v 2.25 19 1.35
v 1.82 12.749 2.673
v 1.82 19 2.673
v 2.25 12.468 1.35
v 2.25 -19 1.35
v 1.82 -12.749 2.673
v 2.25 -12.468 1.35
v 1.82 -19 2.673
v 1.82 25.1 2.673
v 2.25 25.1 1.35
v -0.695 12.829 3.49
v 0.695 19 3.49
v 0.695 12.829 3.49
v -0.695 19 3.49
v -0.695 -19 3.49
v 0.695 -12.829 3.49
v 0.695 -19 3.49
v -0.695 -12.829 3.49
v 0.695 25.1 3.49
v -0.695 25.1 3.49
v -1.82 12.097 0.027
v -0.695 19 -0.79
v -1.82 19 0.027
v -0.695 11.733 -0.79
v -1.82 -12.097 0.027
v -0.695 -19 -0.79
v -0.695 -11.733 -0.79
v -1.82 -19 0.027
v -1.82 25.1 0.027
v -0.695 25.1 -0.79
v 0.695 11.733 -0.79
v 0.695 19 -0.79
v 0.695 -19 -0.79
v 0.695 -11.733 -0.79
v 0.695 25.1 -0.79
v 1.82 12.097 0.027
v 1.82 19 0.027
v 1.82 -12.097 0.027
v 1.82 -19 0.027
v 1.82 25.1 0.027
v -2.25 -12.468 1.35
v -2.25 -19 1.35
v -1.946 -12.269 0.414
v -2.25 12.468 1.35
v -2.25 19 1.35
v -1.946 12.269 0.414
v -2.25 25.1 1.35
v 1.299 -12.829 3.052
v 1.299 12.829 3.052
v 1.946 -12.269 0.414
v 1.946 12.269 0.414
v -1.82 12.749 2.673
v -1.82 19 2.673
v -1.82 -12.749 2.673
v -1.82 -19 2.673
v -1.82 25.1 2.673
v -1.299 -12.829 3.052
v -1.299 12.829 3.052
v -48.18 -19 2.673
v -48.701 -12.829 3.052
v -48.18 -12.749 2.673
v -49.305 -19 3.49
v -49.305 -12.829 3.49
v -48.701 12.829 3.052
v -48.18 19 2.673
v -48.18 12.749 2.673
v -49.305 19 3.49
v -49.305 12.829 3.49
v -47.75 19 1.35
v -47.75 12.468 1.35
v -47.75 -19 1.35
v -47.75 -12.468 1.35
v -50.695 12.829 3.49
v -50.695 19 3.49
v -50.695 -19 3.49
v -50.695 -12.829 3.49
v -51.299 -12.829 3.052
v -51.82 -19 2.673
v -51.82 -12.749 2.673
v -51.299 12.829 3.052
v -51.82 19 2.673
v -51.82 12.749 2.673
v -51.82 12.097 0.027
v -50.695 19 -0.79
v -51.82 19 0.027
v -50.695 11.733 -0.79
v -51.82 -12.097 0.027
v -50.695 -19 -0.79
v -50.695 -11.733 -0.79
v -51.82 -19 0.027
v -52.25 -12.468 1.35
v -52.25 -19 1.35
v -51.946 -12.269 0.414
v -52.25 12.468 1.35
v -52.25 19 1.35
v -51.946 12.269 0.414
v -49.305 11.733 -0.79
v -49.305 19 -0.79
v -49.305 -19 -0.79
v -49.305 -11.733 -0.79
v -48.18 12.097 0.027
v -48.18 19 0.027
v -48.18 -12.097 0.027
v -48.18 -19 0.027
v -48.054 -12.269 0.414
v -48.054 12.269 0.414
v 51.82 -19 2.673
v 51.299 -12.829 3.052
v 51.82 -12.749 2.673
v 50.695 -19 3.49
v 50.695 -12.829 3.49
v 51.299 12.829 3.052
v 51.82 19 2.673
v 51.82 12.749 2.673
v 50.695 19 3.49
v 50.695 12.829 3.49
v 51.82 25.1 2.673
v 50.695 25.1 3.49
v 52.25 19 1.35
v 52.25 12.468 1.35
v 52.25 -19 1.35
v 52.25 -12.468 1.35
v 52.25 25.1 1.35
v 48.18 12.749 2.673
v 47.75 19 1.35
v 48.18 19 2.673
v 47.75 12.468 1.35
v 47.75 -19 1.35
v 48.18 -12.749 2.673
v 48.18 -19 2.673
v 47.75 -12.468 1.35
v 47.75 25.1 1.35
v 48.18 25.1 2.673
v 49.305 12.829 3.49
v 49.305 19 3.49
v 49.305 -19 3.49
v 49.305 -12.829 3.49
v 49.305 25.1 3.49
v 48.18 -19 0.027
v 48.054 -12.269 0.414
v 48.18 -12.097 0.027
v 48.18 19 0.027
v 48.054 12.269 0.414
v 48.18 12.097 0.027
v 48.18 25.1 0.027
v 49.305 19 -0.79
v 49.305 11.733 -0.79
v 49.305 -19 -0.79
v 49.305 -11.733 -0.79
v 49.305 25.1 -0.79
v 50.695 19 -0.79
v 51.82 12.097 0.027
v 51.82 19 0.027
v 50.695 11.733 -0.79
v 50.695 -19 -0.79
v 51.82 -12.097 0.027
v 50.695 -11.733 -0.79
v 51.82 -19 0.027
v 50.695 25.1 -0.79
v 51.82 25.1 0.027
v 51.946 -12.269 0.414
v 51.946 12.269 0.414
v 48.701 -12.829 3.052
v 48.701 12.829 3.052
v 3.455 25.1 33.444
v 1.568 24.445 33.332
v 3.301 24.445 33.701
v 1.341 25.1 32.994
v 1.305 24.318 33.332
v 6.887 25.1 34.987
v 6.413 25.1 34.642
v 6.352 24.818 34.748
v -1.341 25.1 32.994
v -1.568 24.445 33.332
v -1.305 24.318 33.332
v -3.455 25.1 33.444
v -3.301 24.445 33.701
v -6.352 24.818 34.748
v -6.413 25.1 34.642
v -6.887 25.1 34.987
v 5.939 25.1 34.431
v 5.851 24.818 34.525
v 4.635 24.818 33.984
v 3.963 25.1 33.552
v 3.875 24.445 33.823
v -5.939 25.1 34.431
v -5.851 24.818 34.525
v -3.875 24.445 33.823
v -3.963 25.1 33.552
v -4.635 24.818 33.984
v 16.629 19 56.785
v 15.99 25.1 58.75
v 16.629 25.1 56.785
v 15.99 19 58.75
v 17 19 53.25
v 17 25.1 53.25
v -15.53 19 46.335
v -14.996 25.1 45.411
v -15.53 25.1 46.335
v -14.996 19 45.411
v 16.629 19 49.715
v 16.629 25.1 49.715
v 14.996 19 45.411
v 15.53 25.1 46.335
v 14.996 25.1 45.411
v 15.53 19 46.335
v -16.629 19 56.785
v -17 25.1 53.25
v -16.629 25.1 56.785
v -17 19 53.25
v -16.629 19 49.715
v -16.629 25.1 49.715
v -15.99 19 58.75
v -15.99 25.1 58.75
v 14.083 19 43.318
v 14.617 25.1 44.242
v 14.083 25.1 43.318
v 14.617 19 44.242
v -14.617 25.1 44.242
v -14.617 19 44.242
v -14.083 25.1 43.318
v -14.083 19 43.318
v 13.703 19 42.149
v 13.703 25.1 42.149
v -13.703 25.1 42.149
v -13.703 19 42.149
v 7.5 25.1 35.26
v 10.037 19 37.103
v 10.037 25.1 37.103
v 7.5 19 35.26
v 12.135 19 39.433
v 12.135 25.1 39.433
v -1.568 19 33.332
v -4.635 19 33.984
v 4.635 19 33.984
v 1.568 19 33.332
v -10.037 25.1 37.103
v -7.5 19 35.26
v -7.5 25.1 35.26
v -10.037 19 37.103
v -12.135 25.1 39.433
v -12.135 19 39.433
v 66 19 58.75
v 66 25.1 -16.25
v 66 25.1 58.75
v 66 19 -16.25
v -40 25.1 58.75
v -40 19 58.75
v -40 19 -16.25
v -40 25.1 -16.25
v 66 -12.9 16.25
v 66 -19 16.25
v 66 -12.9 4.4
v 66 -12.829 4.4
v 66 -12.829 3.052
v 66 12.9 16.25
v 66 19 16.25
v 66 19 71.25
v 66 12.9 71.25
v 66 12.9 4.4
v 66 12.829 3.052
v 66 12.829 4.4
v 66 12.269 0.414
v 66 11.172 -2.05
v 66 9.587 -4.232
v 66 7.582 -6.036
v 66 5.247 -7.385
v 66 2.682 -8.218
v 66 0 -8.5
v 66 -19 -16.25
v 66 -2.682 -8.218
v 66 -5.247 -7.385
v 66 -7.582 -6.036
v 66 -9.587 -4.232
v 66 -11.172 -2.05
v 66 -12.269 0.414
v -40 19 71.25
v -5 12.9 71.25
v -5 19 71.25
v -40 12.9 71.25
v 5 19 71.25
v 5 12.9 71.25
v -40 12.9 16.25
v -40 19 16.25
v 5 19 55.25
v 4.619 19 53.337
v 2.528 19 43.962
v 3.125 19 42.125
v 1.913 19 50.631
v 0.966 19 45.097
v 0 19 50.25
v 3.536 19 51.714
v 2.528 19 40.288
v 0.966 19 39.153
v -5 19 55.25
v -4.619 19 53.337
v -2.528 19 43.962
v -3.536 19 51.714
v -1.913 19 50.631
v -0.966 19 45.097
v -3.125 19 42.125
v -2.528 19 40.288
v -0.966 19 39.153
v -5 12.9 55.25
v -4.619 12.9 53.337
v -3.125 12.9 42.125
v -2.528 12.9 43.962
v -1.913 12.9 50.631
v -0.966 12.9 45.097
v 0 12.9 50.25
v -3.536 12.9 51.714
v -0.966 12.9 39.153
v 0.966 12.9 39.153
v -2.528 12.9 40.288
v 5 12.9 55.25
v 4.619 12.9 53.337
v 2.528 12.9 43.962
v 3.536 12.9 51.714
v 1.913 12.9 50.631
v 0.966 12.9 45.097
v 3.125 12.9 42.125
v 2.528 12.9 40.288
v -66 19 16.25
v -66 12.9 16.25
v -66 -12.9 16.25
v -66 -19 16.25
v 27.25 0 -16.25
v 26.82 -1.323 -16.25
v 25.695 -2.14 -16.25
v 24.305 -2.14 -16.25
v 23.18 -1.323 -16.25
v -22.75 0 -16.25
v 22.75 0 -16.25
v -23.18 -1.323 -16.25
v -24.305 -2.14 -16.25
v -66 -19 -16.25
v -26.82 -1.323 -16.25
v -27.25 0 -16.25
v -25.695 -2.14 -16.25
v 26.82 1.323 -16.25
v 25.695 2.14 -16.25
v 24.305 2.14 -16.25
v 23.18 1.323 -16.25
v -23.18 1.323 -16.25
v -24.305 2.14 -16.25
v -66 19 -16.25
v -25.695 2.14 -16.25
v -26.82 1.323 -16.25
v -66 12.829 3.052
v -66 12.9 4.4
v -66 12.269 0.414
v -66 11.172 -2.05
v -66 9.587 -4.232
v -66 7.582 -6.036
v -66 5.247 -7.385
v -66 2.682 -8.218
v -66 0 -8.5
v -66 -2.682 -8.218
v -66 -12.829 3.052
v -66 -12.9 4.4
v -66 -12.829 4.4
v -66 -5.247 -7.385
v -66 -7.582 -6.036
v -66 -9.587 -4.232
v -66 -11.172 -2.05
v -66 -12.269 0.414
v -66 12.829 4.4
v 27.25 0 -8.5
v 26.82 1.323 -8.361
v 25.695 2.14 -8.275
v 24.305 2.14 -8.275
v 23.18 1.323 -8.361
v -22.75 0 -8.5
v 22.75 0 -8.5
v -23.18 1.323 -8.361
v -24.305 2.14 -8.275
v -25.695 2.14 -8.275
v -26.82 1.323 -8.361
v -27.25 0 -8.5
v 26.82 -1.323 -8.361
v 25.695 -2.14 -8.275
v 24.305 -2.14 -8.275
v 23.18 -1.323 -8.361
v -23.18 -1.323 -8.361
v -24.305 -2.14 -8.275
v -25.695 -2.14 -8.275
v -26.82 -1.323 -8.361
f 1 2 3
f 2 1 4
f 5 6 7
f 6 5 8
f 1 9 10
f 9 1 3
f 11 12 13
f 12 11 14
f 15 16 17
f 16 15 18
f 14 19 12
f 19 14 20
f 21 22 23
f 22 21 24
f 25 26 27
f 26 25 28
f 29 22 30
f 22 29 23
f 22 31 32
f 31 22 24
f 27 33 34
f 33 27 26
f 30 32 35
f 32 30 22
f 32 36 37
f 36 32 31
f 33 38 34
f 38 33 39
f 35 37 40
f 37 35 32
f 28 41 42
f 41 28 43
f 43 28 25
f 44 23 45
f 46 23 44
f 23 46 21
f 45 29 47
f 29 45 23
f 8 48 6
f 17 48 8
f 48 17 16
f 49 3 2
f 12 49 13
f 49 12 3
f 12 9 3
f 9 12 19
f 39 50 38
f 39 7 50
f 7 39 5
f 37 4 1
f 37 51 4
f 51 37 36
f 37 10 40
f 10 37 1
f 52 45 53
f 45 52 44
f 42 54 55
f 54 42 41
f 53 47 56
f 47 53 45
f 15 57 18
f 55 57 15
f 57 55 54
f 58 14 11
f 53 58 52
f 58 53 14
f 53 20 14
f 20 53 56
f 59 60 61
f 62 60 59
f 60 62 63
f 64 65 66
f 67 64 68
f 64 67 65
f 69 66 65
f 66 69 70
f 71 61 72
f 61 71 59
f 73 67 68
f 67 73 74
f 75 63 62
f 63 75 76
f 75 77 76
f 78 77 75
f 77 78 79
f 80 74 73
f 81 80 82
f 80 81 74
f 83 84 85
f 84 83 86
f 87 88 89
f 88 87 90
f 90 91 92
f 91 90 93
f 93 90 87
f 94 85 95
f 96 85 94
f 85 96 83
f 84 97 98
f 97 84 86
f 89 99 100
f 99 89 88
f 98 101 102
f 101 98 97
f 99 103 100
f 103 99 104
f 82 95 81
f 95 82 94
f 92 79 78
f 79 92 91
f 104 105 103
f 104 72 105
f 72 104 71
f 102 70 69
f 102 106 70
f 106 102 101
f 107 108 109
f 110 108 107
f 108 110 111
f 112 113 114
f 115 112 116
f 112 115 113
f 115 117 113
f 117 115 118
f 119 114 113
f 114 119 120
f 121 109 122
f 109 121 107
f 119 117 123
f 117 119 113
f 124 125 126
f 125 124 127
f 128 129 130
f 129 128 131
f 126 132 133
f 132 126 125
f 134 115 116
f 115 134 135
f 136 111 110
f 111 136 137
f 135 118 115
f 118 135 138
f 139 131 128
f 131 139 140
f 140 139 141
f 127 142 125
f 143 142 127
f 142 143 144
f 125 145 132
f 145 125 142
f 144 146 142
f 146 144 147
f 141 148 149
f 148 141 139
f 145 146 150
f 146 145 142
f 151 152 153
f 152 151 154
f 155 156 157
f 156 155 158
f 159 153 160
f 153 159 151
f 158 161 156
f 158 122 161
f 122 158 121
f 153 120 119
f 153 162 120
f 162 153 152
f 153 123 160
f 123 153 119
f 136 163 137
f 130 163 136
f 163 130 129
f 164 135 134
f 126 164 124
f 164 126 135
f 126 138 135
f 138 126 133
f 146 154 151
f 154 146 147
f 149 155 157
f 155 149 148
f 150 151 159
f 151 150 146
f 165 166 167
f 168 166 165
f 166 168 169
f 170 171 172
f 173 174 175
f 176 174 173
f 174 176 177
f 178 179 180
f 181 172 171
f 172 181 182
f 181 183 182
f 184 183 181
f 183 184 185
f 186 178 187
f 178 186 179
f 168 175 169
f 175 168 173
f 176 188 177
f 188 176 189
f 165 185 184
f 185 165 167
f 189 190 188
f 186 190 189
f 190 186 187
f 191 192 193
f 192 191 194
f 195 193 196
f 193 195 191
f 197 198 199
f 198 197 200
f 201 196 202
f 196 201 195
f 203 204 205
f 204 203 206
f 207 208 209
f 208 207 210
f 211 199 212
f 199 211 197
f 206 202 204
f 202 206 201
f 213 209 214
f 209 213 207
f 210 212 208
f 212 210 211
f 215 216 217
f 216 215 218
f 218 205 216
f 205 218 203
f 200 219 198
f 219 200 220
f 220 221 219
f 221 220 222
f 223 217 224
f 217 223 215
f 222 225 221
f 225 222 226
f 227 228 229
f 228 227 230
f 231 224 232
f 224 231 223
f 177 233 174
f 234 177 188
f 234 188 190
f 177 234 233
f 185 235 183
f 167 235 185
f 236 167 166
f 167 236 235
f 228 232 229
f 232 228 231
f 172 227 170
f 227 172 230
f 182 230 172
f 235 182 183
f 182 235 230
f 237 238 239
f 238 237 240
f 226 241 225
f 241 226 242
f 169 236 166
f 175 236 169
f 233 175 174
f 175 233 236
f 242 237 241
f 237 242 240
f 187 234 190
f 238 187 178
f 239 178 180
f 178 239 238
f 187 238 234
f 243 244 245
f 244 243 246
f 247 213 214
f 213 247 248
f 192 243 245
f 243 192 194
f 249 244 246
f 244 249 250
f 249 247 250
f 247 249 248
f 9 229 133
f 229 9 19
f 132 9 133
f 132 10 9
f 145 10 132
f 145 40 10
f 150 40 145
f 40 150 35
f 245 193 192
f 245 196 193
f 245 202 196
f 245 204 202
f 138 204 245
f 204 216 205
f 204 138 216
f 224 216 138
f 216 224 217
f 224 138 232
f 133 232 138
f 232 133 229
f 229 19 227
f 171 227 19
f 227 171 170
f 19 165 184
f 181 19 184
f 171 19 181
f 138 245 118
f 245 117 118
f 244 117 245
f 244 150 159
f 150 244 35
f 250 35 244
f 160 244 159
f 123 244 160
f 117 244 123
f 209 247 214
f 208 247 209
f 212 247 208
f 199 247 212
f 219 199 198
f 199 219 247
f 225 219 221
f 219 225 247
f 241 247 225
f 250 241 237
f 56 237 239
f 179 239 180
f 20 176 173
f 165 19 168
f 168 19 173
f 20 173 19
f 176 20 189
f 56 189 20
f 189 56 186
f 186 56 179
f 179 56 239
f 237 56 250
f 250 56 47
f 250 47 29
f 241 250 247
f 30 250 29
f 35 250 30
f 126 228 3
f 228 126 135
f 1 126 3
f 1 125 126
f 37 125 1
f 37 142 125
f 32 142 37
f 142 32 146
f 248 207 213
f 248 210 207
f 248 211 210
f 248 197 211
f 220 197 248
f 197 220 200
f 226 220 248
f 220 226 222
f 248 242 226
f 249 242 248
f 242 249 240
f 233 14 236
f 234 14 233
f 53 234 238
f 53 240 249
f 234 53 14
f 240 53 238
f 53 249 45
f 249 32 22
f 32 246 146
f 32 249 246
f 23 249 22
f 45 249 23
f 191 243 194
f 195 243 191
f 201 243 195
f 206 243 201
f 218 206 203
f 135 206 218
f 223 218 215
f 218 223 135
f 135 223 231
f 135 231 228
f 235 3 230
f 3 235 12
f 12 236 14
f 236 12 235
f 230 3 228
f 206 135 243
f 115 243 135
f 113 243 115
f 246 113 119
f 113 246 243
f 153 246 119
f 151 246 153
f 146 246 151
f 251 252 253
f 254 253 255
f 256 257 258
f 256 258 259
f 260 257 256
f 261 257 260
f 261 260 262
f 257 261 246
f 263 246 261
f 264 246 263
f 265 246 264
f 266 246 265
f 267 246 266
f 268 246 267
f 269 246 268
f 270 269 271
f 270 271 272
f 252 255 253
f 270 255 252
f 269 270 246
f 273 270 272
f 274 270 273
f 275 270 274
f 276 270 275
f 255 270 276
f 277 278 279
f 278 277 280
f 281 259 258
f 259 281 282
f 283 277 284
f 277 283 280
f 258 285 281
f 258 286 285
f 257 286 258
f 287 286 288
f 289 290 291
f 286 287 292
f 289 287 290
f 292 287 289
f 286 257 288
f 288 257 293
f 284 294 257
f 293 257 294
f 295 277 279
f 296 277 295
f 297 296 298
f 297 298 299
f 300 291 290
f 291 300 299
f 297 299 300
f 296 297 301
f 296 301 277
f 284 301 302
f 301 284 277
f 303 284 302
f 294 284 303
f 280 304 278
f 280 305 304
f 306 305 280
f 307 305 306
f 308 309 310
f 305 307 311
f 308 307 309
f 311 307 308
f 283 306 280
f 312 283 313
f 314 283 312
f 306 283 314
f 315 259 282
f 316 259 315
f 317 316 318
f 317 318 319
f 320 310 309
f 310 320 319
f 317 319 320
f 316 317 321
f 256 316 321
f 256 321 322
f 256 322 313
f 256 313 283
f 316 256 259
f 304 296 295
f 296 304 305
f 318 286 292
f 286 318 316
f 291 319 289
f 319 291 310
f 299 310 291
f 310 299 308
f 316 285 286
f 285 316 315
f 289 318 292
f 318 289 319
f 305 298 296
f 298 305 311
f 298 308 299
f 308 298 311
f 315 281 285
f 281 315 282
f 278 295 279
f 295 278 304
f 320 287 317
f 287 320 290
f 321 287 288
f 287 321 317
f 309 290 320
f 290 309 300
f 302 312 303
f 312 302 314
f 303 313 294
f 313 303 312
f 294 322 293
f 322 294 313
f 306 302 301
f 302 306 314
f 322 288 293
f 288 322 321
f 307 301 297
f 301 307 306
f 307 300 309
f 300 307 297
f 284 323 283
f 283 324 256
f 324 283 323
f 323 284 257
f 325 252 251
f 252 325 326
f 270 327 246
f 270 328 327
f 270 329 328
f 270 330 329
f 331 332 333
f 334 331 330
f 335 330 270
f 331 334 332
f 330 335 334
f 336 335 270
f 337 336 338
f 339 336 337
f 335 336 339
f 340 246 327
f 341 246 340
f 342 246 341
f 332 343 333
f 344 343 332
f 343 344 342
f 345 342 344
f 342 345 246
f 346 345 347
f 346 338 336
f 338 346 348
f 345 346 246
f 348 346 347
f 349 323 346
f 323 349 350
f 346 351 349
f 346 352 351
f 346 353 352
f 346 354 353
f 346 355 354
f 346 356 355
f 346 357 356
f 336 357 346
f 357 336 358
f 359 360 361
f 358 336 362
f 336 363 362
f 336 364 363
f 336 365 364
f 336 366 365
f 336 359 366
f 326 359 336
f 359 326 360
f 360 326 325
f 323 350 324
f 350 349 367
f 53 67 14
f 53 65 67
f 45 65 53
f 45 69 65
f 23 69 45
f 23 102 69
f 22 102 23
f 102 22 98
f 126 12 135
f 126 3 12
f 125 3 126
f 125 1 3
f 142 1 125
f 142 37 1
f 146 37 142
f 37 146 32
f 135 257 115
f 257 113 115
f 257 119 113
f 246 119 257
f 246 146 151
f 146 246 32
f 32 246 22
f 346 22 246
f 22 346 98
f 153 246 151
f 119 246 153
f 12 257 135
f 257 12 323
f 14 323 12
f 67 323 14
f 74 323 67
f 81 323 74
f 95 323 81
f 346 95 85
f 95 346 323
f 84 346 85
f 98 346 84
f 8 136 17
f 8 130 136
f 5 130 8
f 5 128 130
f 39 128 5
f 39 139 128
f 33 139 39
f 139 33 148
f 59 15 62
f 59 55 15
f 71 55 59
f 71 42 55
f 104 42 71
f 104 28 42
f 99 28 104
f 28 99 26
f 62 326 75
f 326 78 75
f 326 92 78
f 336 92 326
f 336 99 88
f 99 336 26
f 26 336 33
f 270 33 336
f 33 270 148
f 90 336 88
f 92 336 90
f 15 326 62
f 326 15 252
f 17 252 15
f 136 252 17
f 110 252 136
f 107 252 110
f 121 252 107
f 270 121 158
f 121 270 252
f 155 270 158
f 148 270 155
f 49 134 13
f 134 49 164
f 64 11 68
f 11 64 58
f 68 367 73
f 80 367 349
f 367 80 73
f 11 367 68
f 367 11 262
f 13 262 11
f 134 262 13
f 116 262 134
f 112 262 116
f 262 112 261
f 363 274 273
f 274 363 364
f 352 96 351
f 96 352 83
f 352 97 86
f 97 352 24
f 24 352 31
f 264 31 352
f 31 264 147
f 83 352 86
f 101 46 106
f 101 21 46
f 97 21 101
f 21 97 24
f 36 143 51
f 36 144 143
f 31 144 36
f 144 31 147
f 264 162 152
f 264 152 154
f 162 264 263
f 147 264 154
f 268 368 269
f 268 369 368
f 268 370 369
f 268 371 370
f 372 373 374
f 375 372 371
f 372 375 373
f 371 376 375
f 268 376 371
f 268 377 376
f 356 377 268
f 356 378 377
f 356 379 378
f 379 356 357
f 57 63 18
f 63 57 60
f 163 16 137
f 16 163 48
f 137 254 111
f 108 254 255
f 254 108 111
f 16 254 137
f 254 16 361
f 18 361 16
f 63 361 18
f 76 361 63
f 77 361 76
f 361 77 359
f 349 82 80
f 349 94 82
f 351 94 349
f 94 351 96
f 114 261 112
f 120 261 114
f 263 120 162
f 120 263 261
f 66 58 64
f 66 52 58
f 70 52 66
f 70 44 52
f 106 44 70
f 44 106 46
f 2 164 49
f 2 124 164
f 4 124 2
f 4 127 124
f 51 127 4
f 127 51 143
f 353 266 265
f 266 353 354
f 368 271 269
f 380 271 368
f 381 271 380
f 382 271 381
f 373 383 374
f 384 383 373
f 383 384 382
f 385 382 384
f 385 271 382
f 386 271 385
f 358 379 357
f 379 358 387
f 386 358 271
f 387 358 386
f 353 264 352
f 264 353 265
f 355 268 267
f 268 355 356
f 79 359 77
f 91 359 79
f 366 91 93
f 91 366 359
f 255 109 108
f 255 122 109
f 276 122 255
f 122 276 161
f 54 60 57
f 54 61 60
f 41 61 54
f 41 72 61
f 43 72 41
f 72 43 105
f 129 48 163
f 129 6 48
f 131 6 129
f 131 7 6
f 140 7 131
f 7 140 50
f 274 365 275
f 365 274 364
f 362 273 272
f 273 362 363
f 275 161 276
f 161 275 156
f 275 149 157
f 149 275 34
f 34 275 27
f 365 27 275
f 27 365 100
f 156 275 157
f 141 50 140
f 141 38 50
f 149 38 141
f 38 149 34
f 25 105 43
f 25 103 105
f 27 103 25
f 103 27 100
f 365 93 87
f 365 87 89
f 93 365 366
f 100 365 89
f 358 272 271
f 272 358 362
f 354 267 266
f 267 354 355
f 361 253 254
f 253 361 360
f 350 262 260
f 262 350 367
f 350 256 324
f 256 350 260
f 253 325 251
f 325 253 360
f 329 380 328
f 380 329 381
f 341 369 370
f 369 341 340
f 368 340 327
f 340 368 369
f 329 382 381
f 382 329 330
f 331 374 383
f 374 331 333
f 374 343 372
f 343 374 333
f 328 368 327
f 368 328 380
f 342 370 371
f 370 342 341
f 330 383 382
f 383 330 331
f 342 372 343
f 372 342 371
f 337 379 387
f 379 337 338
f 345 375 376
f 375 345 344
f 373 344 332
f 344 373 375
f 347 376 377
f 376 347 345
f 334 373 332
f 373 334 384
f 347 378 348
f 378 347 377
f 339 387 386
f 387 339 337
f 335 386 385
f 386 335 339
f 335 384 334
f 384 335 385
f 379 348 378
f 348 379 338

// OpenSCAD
nakladka_sz = 38; //31.4
nakladka_dl = 132;
nakladka_h = 32.5;
dno_grubosc = 7.75;

rama_sr = 25.8;

sruba_sr = 4.5;
sruba_od_dna = 15.35;
sruba_od_boku = 12.7;
sruby_odstep = 50;

mocowanie_h = 50; //35
mocowanie_sr1 = 10; // lub 12
mocowanie_gr = (nakladka_sz-rama_sr)/2;
mocowanie_dl = 80;

module sruba_dziura(sr){
    rotate([90,0,0]){
        cylinder(h=nakladka_sz+30, d=sr, center=true, $fn=10);
        
    }
}

module mocowanie(h, sr1, gr, dl, sr2){
    difference(){
    translate([(nakladka_dl-dl)/4,0,0]){
        cube([dl+(nakladka_dl-dl)/2, gr, h + 10],center = true);
    }    
    translate([0,0,h/2-16+sr1/2]){
    rotate([90,0,0]){
      cylinder(gr+10, d=sr1, center=true);   
    }
    }
    translate([0,0,h-16+sr1/2]){
        cube([sr1, gr+10, h],center = true);
    }
    translate([0,0,h/2-16-sr2/2-5]){
    rotate([90,0,0]){
    cylinder(gr+10, d=sr2, center=true);
    }
    }
    
    }
}

difference(){

union(){
    cube([nakladka_dl, nakladka_sz, nakladka_h], center=true);

    translate([(nakladka_dl-mocowanie_dl)/4,nakladka_sz/2+mocowanie_gr/2,75 / 2-nakladka_h/2]){
        difference() {
        cube([mocowanie_dl+(nakladka_dl-mocowanie_dl)/2, mocowanie_gr,75],center = true);
            translate([-13, 0, 24.5]) rotate([90,0,0]) {
                cylinder(mocowanie_gr+10, d1=30, d2=16, center=true);
                translate([0, 7.5, 0]) cylinder(mocowanie_gr+10, d=34, center=true);
                translate([0, 5, 0]) cylinder(mocowanie_gr+10, d=32, center=true);
                translate([0, 2.5, 0]) cylinder(mocowanie_gr+10, d=30, center=true);

            }
        }
    }
    
        
        

    translate([0,nakladka_sz/2-mocowanie_gr/2,nakladka_h/2+mocowanie_h/2]){
        mocowanie(mocowanie_h, mocowanie_sr1, mocowanie_gr, mocowanie_dl, 6.25);
    }
}

translate([0,0,-nakladka_h/2+dno_grubosc+rama_sr/2]){
        rotate([0,90,0]){
            cylinder(h=nakladka_dl+30, d=rama_sr, center=true);
            
        }
        }
        
        translate([0,0,dno_grubosc+rama_sr/2]){
            cube([nakladka_dl+30, rama_sr, nakladka_h],center = true);
        }
        translate([0,0,-nakladka_h/2+sruba_sr/2+sruba_od_dna]){
            sruba_dziura(sruba_sr);
            
            translate([-sruby_odstep,0,0]){
               sruba_dziura(sruba_sr); 
            }
            
             translate([sruby_odstep,0,0]){
               sruba_dziura(sruba_sr); 
            }
            
        }
        translate([25,0,0]){
            rotate([-90,0,0]){
                sruba_dziura(sruba_sr); 
            }
        }
         translate([-25,0,0]){
            rotate([-90,0,0]){
                sruba_dziura(sruba_sr); 
            }
        }
    }
